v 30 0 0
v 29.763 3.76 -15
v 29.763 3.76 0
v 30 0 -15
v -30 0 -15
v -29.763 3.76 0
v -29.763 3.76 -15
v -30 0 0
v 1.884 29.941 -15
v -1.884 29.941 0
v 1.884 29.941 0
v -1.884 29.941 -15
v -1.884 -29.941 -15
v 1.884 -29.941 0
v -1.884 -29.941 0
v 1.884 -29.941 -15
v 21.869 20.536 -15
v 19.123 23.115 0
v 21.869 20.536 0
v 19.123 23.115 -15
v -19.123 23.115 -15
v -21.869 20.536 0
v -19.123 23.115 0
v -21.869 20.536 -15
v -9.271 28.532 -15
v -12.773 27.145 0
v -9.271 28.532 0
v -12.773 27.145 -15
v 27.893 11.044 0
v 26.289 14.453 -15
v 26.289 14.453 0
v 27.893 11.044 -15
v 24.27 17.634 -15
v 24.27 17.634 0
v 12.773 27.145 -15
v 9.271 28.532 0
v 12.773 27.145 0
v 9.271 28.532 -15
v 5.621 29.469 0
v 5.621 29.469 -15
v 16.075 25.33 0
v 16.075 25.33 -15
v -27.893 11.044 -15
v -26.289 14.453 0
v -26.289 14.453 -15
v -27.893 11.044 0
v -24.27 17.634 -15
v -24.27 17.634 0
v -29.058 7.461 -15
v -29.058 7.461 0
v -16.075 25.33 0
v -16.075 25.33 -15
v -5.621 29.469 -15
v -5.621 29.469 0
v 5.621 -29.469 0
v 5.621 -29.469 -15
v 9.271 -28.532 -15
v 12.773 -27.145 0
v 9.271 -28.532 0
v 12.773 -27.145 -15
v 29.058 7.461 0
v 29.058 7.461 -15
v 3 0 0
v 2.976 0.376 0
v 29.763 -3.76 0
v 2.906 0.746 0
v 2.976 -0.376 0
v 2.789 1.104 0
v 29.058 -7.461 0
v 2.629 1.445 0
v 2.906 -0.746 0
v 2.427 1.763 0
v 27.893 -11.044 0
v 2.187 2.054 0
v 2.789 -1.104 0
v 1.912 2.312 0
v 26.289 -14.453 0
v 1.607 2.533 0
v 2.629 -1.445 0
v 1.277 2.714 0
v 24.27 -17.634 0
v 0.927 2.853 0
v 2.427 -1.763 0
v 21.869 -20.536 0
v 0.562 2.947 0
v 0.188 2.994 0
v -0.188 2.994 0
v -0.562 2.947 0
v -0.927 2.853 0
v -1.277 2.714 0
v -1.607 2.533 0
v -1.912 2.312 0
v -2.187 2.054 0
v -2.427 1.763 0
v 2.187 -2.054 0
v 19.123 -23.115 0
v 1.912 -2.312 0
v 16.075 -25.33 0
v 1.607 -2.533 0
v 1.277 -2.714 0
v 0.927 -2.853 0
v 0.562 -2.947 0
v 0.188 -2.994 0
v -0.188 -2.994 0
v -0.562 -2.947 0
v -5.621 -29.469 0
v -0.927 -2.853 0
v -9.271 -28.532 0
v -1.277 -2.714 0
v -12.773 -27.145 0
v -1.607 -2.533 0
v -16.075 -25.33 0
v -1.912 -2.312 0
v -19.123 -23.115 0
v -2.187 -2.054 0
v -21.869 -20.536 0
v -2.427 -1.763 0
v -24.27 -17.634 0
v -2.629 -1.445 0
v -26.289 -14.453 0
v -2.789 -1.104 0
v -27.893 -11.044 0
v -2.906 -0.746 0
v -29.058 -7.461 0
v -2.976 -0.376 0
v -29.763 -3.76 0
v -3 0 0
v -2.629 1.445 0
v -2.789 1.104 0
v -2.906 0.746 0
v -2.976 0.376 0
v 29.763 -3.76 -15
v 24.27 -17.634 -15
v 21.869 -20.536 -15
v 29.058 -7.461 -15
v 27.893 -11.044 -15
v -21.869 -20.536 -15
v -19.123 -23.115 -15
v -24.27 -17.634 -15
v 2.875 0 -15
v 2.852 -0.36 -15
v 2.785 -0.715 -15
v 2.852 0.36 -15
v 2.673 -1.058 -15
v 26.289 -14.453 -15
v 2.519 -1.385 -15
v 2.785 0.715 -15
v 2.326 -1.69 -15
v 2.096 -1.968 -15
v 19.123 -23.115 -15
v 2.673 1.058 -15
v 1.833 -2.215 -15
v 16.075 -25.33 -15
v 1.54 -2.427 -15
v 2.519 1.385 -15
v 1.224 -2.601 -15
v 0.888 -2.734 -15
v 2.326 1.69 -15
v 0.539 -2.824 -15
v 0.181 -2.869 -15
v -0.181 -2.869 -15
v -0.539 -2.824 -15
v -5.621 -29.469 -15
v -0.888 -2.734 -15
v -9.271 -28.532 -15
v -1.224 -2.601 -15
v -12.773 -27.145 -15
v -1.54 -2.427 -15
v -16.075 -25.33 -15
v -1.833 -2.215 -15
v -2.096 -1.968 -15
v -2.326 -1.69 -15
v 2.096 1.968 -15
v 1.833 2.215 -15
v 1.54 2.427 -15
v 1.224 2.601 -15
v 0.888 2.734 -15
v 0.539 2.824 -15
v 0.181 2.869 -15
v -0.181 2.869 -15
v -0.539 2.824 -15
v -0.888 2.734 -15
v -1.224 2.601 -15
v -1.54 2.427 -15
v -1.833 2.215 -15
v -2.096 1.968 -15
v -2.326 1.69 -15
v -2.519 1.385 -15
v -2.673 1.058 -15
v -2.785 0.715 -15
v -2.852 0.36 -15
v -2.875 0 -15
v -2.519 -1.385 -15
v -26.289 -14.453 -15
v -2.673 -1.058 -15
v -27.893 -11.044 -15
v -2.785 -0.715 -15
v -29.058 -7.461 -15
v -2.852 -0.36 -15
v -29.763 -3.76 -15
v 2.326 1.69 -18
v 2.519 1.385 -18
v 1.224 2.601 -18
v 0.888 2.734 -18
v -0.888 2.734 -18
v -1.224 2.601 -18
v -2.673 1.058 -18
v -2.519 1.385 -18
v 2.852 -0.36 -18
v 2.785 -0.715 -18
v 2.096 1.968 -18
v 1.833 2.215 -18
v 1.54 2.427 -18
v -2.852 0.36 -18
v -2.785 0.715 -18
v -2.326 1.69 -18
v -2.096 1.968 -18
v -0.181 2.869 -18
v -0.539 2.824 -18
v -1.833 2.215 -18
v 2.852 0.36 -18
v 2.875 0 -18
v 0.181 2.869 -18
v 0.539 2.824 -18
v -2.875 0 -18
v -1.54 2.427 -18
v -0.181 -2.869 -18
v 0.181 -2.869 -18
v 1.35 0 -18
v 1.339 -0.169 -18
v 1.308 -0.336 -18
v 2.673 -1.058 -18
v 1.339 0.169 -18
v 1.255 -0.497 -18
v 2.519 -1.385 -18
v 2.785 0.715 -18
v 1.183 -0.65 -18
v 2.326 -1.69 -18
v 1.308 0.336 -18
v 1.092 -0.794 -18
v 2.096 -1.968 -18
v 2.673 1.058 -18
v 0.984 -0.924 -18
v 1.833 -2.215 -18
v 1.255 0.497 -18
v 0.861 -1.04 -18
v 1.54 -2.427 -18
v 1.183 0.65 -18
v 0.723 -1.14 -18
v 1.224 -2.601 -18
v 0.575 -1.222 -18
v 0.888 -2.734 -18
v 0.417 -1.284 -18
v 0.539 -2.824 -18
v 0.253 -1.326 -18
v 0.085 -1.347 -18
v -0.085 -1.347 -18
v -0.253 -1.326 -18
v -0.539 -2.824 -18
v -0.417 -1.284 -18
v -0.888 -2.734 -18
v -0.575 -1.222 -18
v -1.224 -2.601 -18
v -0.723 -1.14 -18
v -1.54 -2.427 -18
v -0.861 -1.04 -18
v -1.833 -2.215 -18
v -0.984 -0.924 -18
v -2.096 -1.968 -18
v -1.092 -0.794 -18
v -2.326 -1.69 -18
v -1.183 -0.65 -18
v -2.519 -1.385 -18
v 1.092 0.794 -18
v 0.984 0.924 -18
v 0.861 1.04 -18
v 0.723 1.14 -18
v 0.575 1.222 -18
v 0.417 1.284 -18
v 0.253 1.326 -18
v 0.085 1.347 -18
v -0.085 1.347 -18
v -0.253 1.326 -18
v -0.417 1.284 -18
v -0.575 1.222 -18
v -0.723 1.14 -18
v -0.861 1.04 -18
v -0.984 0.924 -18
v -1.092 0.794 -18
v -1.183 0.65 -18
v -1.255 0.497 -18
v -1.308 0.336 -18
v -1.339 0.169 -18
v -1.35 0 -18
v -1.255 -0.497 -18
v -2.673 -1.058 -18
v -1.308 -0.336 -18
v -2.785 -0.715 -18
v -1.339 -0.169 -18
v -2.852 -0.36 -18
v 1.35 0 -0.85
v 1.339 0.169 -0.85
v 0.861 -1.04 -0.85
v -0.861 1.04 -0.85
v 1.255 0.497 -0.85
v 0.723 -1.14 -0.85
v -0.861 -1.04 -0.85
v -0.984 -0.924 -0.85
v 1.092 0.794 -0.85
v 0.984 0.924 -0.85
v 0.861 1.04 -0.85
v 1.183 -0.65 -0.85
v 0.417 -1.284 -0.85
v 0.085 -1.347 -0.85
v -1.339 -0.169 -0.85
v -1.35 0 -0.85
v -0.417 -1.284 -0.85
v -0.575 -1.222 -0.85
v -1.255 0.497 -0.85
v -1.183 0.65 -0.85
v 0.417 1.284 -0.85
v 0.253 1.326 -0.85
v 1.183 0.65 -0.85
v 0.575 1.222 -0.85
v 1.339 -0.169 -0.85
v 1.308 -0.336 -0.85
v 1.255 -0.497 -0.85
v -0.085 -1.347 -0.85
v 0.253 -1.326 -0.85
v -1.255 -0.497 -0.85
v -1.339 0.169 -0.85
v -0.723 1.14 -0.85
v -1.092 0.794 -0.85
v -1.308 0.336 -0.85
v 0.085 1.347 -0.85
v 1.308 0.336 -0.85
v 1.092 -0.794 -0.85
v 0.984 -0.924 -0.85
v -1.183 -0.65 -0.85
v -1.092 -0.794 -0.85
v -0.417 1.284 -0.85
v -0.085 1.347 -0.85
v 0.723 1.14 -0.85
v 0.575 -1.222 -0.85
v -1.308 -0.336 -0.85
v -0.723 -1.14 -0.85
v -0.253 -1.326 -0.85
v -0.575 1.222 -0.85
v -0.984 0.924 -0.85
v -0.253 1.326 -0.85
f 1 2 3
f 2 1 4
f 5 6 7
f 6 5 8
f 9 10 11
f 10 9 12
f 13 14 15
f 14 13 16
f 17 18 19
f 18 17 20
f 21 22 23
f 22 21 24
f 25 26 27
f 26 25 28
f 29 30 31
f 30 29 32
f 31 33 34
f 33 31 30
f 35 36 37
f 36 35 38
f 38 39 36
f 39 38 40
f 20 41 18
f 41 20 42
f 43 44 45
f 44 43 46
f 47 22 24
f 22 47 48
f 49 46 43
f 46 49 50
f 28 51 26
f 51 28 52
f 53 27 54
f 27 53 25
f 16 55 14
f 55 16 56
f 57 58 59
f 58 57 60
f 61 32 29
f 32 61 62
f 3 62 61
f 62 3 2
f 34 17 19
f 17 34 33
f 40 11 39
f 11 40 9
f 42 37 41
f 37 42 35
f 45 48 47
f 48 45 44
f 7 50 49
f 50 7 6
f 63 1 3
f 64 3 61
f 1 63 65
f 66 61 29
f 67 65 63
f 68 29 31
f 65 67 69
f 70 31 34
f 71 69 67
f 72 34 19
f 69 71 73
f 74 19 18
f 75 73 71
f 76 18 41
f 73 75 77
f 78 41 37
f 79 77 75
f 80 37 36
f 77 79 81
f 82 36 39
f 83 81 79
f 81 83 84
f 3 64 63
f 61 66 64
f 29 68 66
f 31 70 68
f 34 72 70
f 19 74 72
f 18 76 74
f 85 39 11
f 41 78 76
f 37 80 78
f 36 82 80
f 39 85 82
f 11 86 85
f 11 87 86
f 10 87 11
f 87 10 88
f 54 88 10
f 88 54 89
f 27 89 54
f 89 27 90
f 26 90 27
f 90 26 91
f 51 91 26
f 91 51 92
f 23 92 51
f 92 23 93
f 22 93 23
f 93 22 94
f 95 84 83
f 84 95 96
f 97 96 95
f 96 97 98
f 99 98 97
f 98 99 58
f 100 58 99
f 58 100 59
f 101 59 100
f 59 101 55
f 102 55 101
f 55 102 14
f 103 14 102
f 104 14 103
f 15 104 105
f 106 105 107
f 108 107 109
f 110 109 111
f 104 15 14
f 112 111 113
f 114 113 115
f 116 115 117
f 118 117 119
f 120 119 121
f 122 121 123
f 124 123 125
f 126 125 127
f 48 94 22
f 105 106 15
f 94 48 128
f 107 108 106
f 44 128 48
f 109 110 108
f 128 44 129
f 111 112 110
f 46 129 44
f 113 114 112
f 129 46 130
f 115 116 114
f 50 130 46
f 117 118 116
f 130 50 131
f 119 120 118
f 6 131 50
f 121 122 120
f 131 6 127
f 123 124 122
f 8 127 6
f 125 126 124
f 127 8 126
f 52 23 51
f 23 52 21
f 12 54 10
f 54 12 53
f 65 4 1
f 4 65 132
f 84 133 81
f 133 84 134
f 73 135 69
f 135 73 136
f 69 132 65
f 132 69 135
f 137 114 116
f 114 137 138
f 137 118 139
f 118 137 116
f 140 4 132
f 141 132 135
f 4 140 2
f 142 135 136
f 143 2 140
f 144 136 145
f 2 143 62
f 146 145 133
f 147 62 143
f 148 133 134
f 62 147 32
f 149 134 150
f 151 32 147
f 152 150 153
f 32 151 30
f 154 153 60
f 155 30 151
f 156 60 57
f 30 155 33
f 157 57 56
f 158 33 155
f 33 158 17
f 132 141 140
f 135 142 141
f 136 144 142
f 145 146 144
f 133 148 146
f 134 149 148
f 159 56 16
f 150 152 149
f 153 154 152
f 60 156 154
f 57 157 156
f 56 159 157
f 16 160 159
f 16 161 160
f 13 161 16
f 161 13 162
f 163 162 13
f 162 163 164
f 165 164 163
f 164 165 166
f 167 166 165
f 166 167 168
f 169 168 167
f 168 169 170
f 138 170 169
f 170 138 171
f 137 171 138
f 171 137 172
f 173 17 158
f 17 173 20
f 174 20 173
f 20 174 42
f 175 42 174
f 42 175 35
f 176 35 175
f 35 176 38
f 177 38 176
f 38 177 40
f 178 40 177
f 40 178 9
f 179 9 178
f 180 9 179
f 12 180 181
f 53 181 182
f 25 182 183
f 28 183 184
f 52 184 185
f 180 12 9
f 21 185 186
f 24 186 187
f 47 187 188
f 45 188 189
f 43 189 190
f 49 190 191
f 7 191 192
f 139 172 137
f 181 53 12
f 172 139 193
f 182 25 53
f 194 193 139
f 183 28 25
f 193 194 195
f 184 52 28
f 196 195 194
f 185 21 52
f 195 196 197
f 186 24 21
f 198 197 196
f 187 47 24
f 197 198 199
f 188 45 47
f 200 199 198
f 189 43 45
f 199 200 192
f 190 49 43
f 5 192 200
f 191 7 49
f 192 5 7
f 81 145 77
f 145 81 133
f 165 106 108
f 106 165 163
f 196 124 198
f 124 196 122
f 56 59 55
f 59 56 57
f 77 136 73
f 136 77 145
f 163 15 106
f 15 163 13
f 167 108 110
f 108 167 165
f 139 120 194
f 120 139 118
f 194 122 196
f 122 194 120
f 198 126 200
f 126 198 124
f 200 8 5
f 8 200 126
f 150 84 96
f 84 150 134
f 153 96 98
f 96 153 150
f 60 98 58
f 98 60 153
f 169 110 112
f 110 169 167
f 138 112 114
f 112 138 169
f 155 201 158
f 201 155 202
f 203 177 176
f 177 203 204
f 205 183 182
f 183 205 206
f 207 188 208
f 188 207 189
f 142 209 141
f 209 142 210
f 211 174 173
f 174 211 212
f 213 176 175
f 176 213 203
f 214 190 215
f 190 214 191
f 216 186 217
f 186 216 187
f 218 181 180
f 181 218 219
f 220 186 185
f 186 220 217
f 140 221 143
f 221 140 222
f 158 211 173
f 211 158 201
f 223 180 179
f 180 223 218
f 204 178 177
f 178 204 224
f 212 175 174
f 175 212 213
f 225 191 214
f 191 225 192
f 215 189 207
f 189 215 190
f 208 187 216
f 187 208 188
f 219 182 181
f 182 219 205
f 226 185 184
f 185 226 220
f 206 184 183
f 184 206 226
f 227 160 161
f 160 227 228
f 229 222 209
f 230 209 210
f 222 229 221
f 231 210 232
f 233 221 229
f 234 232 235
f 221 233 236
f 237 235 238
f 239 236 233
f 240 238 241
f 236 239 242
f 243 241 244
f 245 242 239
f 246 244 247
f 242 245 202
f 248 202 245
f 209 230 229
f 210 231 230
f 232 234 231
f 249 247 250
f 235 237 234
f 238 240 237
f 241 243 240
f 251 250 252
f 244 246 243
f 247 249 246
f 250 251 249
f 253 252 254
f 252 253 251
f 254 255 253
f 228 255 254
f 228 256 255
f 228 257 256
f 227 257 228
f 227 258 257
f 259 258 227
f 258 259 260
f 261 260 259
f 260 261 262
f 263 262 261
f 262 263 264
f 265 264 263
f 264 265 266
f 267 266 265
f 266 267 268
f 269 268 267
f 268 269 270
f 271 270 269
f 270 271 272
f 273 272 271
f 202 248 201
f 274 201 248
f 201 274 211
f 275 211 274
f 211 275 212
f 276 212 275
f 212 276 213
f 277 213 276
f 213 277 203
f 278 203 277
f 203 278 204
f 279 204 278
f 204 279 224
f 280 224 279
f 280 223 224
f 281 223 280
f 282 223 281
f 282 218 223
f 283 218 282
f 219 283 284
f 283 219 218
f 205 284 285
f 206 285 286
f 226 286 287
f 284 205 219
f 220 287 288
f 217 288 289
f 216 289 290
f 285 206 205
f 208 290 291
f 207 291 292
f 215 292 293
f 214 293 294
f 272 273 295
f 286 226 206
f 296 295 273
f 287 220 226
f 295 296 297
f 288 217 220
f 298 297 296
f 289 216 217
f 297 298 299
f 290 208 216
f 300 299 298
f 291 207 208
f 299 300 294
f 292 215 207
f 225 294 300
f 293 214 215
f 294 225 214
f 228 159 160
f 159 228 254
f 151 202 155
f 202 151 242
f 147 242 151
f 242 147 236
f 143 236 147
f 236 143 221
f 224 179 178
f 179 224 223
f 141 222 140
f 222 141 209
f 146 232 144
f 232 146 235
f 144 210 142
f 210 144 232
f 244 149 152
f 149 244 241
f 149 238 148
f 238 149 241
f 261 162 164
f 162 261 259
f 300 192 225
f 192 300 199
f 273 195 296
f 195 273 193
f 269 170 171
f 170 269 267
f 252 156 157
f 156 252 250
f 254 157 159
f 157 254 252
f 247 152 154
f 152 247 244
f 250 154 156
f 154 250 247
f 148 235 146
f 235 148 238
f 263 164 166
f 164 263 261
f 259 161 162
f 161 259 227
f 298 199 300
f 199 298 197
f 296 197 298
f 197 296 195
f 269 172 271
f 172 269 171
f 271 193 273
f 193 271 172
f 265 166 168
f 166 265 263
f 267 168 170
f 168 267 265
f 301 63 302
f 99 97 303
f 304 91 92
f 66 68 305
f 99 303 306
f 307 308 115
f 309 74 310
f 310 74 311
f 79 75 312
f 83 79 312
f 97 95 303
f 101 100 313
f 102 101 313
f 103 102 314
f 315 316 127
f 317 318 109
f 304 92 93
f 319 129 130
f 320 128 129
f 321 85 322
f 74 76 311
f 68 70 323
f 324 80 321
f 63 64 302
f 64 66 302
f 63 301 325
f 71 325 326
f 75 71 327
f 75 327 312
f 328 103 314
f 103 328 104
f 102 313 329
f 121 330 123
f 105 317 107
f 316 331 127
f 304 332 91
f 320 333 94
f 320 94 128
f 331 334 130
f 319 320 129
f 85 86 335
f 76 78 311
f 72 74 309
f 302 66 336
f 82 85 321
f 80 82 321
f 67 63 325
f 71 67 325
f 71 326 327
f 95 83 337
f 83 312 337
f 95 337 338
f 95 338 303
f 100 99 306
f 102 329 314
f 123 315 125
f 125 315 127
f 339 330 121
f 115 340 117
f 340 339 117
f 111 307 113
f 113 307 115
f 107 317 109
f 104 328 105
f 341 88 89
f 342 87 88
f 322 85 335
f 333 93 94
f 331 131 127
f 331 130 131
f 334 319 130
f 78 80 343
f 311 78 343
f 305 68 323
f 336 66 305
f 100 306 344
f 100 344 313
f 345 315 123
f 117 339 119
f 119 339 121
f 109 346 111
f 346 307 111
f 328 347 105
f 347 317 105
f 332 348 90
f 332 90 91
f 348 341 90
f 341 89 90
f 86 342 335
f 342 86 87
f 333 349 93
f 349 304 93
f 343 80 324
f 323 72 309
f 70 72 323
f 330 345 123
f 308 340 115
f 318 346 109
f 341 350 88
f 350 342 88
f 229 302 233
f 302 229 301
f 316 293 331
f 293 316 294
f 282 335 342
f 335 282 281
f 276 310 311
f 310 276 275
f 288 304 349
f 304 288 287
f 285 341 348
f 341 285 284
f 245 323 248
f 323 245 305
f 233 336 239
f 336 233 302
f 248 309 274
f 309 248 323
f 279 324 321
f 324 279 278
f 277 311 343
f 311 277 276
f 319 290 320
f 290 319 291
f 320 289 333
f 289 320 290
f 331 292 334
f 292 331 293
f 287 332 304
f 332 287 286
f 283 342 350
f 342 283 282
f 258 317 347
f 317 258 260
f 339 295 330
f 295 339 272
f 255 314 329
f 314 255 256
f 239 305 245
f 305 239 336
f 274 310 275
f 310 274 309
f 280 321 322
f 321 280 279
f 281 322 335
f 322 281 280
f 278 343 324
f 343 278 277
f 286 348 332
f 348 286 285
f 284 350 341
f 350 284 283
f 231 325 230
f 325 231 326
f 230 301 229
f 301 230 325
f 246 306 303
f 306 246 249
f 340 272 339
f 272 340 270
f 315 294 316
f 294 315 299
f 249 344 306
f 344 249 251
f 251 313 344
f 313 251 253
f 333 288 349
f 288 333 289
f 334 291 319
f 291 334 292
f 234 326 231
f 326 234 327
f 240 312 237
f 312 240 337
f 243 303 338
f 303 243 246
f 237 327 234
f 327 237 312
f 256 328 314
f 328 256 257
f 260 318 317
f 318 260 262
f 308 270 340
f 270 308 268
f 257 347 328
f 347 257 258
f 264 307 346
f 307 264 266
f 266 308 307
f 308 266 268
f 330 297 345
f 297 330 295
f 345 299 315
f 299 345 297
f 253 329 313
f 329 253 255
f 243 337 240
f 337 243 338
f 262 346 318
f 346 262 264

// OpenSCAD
$fn = 50;

difference() {
	union() {
		translate(v = [0, 0, -15.0]) {
			cylinder(h = 15, r = 30.0);
		}
		#translate(v = [0, 0, -18.0]) {
			cylinder(h = 18, r = 2.875);
		}
	}
	union() {
		translate(v = [0, 0, 0]) {
			rotate(a = [0, 0, 0]) {
				difference() {
					union() {
						translate(v = [0, 0, -18.0]) {
							cylinder(h = 18, r = 1.0);
						}
						translate(v = [0, 0, -0.85]) {
							cylinder(h = 0.85, r1 = 1.35, r2 = 3.0);
						}
						translate(v = [0, 0, -18.0]) {
							cylinder(h = 18, r = 1.35);
						}
						translate(v = [0, 0, -18.0]) {
							cylinder(h = 18, r = 1.0);
						}
					}
					union();
				}
			}
		}
	}
}
